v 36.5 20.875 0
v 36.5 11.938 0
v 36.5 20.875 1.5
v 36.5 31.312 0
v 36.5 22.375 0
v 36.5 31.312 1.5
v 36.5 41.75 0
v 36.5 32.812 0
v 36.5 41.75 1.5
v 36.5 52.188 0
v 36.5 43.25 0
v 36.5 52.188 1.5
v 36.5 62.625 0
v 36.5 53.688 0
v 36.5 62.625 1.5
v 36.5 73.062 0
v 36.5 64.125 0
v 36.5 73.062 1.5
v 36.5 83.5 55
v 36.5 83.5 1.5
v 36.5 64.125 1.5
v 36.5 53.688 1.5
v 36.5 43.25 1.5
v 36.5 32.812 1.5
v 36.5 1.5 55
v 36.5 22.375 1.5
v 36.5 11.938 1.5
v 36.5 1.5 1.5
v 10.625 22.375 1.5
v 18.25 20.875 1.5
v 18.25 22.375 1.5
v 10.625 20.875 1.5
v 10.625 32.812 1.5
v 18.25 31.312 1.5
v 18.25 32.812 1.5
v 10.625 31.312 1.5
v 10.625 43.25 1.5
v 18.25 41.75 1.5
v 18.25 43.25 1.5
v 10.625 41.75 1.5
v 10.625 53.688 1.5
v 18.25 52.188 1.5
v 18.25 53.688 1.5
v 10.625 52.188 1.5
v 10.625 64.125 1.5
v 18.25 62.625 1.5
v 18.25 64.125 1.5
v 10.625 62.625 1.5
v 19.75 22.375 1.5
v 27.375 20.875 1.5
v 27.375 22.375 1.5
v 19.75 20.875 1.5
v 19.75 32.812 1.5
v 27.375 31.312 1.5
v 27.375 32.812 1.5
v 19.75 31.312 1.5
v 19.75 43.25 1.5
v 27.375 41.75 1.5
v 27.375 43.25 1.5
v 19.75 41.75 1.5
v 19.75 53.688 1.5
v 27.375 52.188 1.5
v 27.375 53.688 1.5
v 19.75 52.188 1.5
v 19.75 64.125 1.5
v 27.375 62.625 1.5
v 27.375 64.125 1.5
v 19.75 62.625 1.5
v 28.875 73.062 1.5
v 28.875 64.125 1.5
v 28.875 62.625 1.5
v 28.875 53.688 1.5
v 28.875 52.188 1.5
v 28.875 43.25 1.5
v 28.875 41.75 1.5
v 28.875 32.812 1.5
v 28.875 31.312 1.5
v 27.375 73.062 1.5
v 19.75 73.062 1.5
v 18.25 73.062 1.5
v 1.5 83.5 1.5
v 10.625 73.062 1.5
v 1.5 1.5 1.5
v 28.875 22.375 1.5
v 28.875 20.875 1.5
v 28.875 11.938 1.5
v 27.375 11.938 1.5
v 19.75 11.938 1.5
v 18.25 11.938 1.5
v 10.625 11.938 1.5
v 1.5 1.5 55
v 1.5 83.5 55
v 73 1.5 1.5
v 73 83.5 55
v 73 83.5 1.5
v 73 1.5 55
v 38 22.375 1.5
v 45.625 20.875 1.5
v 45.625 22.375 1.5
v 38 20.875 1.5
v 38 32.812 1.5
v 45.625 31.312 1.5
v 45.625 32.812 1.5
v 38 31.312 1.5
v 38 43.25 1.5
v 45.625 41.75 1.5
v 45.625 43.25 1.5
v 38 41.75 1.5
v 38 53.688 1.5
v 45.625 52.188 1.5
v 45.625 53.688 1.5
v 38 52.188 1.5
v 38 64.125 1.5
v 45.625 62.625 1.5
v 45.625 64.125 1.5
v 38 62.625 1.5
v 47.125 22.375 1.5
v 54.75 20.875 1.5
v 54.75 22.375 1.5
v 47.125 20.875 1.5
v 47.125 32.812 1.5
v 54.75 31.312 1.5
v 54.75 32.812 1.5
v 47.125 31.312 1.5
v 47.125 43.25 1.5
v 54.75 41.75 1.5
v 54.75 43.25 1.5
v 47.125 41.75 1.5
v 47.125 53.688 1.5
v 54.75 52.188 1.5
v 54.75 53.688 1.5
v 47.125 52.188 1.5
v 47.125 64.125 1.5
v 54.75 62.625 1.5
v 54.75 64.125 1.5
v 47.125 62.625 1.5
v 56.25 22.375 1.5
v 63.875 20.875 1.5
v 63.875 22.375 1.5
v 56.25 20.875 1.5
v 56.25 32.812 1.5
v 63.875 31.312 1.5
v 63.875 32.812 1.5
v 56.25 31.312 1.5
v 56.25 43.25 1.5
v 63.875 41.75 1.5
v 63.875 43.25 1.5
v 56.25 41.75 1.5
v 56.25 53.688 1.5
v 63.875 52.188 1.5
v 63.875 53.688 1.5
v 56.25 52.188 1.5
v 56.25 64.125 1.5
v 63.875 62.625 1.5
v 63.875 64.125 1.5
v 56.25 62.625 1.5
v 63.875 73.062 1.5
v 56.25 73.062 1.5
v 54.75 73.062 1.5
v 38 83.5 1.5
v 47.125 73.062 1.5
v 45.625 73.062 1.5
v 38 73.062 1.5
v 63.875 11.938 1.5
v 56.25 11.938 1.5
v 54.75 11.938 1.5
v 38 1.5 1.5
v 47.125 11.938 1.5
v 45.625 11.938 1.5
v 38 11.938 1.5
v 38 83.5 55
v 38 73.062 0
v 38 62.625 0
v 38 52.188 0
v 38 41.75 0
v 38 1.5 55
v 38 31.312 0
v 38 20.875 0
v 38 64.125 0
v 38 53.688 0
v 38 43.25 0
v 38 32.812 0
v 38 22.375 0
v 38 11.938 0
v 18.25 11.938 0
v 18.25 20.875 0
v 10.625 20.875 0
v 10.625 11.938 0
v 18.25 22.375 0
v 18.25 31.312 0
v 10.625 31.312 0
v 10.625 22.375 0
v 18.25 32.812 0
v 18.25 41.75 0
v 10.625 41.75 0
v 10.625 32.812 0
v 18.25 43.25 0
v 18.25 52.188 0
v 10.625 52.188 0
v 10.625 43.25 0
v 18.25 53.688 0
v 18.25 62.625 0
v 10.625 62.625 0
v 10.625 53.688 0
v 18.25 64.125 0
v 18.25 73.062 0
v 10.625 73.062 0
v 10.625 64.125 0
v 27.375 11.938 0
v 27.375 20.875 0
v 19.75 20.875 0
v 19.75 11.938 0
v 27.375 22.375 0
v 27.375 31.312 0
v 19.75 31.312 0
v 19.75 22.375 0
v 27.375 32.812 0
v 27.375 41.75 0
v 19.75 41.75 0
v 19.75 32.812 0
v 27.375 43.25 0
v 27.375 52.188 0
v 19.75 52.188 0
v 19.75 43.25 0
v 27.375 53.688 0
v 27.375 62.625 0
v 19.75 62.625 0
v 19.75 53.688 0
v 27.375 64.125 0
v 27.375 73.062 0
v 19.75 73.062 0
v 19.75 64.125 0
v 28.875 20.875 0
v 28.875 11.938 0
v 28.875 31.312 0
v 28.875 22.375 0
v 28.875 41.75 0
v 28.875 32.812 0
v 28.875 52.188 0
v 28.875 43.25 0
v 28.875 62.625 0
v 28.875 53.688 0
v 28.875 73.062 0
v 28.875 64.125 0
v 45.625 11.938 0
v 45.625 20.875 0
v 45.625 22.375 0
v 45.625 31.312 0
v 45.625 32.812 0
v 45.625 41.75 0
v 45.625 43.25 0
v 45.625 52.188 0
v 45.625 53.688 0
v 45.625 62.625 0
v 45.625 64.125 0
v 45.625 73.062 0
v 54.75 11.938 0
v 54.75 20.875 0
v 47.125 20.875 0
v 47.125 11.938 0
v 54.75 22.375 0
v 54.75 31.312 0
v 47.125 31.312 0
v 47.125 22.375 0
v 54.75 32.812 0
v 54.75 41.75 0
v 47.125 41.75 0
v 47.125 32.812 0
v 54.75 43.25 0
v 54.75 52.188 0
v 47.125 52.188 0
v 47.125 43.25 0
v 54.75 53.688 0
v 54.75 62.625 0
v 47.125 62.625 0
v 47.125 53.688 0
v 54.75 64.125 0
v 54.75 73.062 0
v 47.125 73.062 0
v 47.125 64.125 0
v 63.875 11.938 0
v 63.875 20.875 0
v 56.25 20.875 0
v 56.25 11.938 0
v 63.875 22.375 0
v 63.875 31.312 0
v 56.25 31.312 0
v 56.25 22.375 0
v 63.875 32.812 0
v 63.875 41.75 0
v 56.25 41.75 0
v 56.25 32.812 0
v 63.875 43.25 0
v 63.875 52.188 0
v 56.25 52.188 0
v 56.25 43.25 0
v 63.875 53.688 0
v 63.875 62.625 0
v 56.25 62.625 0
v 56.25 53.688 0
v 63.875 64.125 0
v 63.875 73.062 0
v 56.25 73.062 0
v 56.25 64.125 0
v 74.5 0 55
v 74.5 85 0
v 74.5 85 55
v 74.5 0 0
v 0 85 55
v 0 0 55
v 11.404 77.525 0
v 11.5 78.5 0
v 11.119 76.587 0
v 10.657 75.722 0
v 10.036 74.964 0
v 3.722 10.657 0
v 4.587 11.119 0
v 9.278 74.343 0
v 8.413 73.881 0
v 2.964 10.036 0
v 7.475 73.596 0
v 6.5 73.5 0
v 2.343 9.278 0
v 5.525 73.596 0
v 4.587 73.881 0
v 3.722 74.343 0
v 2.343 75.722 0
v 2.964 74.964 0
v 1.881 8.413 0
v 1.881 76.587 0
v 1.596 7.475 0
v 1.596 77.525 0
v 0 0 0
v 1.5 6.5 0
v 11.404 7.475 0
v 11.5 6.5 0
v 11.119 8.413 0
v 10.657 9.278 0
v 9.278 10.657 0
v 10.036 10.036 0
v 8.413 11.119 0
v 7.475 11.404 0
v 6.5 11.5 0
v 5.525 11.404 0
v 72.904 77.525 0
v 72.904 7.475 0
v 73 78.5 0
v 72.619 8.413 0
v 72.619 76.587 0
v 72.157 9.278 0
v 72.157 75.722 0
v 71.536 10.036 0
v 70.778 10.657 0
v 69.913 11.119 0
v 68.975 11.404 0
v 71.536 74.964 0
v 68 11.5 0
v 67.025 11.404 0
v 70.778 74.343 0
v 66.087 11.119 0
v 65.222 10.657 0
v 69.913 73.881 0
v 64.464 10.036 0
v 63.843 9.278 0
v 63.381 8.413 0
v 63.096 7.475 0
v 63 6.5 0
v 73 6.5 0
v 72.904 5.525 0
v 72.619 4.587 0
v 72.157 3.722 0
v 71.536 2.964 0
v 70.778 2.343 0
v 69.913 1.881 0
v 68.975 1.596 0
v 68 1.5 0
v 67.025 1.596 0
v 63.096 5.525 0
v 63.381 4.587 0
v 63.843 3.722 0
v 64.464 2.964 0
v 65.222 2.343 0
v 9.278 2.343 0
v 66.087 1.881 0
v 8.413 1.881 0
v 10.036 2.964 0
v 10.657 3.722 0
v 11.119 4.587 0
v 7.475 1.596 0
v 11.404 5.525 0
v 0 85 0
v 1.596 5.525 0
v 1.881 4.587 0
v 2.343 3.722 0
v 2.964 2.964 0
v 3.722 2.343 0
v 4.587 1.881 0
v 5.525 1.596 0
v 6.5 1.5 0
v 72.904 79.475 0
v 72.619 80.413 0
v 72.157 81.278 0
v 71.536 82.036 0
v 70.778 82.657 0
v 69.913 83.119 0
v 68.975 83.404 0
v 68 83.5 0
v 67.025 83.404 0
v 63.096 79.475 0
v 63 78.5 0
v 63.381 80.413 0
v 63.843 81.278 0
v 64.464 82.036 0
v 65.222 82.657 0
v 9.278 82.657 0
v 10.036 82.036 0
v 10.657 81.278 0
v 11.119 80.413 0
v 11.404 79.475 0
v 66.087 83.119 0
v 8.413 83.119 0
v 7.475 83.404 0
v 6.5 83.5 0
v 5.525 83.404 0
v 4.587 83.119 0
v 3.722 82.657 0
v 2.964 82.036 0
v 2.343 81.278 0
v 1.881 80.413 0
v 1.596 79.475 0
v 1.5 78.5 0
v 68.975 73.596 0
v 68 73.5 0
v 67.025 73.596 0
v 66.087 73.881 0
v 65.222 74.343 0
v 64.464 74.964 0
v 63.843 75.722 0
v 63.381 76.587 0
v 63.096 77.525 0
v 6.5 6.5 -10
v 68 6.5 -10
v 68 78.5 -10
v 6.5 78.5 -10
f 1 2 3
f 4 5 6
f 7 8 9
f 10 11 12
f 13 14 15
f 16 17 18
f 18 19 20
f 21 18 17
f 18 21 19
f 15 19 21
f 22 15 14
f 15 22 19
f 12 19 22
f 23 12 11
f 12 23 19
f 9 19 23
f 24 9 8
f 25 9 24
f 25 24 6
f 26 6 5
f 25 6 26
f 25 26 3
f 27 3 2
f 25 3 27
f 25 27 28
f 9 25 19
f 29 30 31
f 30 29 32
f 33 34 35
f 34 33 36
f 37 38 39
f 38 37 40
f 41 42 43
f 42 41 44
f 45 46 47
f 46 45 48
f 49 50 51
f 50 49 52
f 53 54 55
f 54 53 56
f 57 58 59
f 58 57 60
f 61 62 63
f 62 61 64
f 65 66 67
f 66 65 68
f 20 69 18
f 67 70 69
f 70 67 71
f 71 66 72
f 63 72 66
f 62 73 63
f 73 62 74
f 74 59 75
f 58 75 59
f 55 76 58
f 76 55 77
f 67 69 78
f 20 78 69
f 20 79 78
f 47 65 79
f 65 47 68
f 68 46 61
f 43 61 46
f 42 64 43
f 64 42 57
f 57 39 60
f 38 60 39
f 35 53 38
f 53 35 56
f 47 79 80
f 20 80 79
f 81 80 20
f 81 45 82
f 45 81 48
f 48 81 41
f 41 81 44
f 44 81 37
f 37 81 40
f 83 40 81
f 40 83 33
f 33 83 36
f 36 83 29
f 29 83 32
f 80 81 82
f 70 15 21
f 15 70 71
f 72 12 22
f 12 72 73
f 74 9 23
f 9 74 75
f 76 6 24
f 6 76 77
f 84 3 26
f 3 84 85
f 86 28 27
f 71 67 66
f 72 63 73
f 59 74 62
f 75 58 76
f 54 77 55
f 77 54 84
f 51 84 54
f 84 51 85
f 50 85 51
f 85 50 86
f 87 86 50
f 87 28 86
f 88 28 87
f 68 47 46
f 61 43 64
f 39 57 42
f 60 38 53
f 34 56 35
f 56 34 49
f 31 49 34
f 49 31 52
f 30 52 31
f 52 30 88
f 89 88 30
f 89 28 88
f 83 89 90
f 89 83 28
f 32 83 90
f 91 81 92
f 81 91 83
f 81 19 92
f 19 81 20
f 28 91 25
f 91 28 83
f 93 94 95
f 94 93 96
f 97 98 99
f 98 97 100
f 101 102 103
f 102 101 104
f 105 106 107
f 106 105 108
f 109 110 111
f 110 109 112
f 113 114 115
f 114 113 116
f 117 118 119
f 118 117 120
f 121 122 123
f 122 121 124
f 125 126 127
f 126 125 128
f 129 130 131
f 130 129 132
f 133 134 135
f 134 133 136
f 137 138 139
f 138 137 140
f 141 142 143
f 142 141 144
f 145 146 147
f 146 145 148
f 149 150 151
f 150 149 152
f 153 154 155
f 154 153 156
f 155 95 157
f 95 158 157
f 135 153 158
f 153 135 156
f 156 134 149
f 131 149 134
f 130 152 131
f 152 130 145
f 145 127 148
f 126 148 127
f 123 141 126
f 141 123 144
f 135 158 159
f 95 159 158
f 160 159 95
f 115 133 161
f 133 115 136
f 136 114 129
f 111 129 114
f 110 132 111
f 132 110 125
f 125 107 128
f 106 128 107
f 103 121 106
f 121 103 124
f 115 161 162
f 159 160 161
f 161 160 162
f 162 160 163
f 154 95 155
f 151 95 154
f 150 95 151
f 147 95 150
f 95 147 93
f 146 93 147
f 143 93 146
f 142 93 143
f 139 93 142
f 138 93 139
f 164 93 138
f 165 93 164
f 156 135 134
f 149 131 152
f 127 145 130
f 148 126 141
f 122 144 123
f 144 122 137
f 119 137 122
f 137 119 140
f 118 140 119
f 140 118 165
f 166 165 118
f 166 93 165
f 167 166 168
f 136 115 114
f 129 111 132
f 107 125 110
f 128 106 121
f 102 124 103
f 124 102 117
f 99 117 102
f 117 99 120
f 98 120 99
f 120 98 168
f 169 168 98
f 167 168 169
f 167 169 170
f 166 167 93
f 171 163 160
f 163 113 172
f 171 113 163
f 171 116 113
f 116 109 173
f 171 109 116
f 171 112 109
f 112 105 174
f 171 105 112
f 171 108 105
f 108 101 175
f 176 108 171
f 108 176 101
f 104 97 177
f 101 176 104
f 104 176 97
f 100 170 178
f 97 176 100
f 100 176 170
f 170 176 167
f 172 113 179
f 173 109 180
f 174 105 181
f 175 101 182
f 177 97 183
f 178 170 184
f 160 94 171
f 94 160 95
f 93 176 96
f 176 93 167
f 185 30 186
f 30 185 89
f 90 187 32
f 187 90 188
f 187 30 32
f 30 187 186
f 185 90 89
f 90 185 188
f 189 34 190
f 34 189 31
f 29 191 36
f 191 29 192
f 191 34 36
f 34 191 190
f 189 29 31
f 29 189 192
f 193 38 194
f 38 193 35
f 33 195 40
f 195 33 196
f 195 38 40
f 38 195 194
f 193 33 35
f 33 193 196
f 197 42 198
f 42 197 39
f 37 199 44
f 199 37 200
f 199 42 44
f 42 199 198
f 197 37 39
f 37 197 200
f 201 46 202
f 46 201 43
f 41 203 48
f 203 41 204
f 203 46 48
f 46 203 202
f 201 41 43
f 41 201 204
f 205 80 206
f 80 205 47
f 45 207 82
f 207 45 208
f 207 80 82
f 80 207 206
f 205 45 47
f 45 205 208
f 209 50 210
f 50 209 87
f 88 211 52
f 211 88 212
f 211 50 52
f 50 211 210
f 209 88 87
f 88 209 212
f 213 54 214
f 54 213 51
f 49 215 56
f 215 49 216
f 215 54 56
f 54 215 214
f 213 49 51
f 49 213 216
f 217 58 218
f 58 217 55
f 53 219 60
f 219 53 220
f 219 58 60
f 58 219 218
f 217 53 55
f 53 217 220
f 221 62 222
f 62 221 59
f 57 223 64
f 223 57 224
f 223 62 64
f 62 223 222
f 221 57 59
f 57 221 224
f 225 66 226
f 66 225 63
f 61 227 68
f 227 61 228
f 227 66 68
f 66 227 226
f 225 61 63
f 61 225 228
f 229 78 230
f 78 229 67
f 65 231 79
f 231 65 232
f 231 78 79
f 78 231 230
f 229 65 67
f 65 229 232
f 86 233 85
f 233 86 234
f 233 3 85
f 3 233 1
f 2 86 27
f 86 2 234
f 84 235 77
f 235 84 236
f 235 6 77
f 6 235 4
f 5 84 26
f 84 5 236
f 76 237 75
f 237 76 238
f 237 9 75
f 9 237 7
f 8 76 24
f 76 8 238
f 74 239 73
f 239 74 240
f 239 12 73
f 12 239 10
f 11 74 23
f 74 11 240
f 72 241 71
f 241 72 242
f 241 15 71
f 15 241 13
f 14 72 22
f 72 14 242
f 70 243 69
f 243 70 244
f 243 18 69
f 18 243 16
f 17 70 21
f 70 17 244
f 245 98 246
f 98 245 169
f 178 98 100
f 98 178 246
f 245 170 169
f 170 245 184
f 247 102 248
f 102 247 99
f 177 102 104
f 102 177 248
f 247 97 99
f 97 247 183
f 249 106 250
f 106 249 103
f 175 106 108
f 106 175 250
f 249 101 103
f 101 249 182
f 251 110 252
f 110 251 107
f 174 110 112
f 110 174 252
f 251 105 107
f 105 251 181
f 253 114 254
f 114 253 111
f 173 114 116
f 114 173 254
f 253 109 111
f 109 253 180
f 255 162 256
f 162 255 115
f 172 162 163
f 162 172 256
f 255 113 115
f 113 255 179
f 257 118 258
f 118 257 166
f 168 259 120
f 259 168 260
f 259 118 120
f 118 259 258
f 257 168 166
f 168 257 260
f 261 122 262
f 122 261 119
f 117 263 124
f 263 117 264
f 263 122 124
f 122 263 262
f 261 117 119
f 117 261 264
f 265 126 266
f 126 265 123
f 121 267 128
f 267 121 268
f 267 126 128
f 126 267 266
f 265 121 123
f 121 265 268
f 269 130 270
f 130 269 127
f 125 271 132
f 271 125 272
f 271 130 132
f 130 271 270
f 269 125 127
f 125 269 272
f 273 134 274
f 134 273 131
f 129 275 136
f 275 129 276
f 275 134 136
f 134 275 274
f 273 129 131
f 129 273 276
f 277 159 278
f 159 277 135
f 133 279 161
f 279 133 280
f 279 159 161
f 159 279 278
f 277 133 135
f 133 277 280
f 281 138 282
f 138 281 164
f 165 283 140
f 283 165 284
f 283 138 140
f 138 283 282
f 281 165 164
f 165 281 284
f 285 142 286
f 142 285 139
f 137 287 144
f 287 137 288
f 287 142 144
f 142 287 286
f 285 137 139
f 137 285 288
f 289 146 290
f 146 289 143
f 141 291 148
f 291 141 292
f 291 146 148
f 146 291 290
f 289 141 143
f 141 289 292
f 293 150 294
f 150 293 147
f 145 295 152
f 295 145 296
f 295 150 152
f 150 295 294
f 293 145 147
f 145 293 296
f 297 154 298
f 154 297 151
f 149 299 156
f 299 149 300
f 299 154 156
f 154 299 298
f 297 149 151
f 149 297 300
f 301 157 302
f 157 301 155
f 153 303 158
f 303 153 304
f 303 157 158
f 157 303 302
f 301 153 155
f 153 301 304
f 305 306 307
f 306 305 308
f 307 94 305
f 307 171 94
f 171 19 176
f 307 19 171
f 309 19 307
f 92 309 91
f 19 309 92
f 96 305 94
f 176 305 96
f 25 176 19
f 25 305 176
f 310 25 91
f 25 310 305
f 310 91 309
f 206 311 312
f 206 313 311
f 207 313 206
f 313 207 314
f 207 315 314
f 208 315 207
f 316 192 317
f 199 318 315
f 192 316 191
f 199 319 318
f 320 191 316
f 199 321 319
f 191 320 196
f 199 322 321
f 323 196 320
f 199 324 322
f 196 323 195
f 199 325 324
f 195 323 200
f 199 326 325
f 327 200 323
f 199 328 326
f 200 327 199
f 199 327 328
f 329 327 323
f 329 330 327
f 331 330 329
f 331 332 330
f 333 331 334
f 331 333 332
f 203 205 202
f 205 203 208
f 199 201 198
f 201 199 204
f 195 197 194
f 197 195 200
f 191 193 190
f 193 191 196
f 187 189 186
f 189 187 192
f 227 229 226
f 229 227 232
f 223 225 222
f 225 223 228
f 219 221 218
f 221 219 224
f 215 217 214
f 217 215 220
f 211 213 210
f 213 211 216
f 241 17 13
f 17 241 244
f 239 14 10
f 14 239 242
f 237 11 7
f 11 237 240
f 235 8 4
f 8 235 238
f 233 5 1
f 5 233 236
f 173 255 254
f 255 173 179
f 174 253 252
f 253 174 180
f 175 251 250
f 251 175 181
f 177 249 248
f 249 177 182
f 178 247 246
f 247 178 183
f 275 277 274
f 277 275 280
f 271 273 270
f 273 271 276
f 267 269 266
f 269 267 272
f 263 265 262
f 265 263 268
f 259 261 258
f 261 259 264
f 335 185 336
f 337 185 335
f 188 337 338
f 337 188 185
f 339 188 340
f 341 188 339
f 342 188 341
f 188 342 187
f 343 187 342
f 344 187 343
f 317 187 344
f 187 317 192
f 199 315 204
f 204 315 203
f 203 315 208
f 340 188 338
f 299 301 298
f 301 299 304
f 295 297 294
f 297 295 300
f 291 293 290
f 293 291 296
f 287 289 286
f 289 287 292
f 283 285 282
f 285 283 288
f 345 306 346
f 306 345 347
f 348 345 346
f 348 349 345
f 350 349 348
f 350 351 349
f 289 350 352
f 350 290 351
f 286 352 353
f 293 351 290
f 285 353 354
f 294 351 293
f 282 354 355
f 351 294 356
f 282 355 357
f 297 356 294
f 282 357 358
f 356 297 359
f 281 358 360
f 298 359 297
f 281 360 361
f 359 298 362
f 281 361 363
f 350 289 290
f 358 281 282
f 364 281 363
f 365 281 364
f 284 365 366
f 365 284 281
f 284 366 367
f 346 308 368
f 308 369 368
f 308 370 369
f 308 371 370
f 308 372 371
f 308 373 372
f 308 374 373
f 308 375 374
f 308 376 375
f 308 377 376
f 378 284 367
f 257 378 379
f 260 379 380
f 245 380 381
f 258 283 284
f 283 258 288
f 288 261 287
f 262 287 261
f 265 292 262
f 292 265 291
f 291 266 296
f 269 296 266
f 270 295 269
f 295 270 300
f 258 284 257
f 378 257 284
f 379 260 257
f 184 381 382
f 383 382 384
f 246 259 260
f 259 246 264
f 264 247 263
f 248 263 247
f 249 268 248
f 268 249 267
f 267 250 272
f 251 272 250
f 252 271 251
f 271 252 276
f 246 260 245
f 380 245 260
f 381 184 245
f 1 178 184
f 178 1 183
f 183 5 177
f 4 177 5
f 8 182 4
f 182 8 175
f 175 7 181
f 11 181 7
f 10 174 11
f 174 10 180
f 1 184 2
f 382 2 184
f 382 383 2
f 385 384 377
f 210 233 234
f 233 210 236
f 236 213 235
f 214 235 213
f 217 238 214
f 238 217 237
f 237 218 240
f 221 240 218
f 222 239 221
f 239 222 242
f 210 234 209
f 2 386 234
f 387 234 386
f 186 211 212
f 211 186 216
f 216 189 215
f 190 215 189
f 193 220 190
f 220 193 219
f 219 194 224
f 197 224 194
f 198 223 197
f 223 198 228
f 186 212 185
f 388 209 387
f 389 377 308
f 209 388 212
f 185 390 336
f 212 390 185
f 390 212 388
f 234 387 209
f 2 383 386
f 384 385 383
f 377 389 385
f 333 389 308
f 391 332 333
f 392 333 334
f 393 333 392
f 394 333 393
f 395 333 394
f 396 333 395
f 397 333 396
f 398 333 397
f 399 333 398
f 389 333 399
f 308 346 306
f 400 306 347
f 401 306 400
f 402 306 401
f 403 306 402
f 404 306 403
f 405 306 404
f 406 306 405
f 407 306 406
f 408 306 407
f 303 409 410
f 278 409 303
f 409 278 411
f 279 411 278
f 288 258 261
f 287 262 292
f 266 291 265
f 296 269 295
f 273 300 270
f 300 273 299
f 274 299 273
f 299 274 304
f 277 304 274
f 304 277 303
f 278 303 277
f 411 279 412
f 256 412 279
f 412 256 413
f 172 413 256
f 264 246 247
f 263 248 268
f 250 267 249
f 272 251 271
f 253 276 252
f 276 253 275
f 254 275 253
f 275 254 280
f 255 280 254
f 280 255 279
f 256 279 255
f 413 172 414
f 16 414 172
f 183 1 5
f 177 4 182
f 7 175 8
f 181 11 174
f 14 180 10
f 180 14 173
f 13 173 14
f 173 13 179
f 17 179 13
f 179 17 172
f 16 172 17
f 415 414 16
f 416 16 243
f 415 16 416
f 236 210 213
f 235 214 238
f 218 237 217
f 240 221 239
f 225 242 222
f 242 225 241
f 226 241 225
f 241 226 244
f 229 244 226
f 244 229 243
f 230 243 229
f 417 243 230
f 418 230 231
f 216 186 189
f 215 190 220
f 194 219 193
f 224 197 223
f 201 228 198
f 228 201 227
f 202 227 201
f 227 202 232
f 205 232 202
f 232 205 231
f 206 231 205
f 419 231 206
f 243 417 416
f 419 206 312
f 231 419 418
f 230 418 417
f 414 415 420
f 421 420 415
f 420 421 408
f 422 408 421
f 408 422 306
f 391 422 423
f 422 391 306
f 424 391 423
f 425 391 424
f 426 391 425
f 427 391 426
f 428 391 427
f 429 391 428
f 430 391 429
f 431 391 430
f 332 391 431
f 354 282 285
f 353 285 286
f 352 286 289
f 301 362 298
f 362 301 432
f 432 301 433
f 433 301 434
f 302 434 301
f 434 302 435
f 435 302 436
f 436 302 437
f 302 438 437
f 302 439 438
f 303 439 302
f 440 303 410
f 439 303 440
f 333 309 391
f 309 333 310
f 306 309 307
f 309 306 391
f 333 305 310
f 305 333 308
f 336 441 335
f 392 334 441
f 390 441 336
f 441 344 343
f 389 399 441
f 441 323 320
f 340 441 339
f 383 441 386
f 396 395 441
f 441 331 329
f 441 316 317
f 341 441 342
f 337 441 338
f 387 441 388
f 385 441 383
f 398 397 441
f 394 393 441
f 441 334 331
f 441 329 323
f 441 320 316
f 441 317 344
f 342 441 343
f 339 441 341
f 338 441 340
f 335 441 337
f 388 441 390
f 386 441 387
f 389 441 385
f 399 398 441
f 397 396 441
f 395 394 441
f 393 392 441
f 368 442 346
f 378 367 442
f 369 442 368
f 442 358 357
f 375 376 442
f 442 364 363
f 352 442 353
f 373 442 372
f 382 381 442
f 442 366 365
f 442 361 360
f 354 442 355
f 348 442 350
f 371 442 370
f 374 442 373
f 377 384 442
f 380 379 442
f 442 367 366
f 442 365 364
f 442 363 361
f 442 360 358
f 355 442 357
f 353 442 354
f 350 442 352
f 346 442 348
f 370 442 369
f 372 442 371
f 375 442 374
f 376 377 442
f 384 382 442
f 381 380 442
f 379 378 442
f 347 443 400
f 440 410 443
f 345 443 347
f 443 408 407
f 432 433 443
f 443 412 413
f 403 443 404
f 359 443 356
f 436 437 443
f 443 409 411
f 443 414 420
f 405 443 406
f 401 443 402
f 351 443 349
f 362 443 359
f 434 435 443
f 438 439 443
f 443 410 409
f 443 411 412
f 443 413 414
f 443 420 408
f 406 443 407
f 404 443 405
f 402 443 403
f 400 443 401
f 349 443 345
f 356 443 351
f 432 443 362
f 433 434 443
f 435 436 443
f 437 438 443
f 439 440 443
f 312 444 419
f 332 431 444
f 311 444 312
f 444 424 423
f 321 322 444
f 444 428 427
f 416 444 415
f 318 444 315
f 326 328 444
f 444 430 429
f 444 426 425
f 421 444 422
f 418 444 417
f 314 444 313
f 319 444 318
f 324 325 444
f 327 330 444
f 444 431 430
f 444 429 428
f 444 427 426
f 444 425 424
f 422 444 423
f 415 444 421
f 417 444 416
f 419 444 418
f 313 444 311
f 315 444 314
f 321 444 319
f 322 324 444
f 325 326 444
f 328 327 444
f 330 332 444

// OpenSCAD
epaisseur=35;
largeur=max(75,77)+5;
wall=1.5;
hole_x=(epaisseur-wall*3)/4;
hole_y=(largeur-wall*7)/8;

difference() {
	cube([epaisseur*2+wall*3, largeur+wall*2, 55]);
	translate([wall,wall,wall]) {
		cube([epaisseur,largeur,85]);
		translate([epaisseur+wall,0,0])
			cube([epaisseur,largeur,85]);
	}
	for(x=[hole_x+wall:hole_x+wall:epaisseur*2-hole_x]) {
		for(y=[hole_y+wall:hole_y+wall:largeur-hole_y-wall]) {
			translate([x+wall,y+wall,-1])
				cube([hole_x,hole_y,5]);
		}
	}
}

pied_h = 10;
pied_r = pied_h/2;
translate([pied_r+wall,pied_r+wall,-pied_h])
	cylinder(pied_h,0,pied_r,$fn=32);
translate([epaisseur*2+wall*2-pied_r,pied_r+wall,-pied_h])
	cylinder(pied_h,0,pied_r,$fn=32);
translate([epaisseur*2+wall*2-pied_r,largeur-pied_r+wall,-pied_h])
	cylinder(pied_h,0,pied_r,$fn=32);
translate([pied_r+wall,largeur-pied_r+wall,-pied_h])
	cylinder(pied_h,0,pied_r,$fn=32);
